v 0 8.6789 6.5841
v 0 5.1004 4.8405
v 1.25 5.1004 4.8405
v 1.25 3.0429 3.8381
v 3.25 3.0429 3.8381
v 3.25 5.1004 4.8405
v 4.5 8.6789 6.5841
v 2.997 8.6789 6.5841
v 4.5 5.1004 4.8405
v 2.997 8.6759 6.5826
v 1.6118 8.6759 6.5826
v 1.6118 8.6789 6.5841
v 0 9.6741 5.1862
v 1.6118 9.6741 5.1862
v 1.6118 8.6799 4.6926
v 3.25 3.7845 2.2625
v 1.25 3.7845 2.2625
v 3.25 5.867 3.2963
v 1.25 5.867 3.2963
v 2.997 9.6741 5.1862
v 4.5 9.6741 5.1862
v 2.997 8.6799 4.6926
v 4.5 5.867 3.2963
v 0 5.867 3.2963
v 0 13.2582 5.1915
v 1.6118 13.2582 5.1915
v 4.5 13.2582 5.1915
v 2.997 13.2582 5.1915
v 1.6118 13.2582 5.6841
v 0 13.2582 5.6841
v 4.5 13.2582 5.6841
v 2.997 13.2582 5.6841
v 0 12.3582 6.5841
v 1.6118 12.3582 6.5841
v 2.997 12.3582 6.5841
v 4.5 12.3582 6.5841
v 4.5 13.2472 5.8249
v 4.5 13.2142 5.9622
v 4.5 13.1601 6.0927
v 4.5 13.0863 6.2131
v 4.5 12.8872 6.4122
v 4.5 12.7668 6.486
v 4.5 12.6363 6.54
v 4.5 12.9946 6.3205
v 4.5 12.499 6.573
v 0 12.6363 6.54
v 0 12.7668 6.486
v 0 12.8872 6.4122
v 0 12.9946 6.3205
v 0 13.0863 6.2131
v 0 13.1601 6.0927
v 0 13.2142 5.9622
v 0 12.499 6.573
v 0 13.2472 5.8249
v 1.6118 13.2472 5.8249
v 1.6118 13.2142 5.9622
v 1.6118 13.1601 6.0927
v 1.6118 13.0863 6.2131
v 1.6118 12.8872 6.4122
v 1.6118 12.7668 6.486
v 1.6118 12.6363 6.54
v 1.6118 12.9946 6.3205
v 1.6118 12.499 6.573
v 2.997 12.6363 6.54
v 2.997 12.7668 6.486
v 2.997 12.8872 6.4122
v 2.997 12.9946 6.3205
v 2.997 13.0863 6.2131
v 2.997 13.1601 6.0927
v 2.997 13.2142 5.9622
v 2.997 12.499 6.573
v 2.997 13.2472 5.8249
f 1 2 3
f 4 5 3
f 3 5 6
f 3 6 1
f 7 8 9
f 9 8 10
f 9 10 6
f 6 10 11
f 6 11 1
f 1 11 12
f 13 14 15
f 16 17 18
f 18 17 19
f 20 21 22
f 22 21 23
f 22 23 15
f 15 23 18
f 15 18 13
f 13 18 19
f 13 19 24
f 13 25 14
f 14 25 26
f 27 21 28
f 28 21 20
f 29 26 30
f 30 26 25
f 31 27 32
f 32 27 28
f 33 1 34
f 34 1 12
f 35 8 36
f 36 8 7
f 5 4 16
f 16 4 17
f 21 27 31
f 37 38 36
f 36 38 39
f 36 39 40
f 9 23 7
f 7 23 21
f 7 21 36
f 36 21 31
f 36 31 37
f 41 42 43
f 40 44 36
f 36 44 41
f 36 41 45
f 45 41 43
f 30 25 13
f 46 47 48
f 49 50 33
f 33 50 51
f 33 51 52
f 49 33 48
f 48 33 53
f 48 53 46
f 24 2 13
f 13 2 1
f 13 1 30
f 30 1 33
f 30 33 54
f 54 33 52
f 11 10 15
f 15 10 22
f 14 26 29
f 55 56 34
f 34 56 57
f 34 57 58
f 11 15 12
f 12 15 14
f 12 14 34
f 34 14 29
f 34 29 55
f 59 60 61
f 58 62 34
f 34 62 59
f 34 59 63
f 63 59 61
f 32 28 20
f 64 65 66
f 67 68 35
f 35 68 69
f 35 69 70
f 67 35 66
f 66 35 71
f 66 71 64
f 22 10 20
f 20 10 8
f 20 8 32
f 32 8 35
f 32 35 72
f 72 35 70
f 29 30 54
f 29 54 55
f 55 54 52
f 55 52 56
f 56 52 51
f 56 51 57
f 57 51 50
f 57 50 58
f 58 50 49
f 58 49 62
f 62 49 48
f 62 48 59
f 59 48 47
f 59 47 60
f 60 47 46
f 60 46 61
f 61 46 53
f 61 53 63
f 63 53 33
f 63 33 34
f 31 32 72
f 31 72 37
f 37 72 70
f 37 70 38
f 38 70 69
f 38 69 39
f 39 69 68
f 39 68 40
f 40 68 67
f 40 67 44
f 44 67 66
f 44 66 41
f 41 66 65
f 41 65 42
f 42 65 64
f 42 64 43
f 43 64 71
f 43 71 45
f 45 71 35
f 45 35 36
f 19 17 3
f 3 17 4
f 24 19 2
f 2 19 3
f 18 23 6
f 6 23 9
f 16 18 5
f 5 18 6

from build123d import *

# Parameters (mm, degrees)
BOSS_EXTRUDE1_DEPTH            = 4.5
CUT_EXTRUDE1_REACH             = 3.412
SKETCH4_W                      = 1.385219638
SKETCH4_H                      = 4.6
CUT_EXTRUDE1_DIRECTION_2_DEPTH = 4.5
FILLET1_R                      = 0.9
CUT_EXTRUDE3_REACH             = 6.201
SKETCH9_W                      = 1.25
SKETCH9_H                      = 2.324916291


with BuildPart() as part:
    # Sketch3 → Boss-Extrude1 (new body)
    with BuildSketch(Plane(origin=(0, 0, 0), x_dir=(0, 0, -1), z_dir=(1, 0, 0))):
        Polygon((-5.191543854, 13.25823412), (-5.18615245, 9.674078564), (-2.262529631, 3.784549229), (-3.838080431, 3.04292615), (-6.584072535, 8.678891581), (-6.584072535, 13.25823412), align=None)
    extrude(amount=BOSS_EXTRUDE1_DEPTH)

    # Sketch4 → Cut-Extrude1 (cut, up to next)
    with BuildSketch(Plane(origin=(0, -0.010796619, 5.165911314), x_dir=(-1, 0, 0), z_dir=(0, 0.002089969, -0.999997816)), mode=Mode.PRIVATE) as cut_extrude1_sk1:
        with Locations((-2.304435674, 10.989683529)):
            Rectangle(SKETCH4_W, SKETCH4_H)
    cut_extrude1_tool1 = extrude(cut_extrude1_sk1.sketch, amount=-CUT_EXTRUDE1_REACH, mode=Mode.PRIVATE) & part.part
    add(cut_extrude1_tool1.solids().sort_by_distance((2.304436, 10.978863, 5.188879))[0], mode=Mode.SUBTRACT)

    # Sketch4 → Cut-Extrude1 direction 2 (cut)
    with BuildSketch(Plane(origin=(0, -0.010796619, 5.165911314), x_dir=(-1, 0, 0), z_dir=(0, 0.002089969, -0.999997816))):
        with Locations((-2.304435674, 10.989683529)):
            Rectangle(SKETCH4_W, SKETCH4_H)
    extrude(amount=CUT_EXTRUDE1_DIRECTION_2_DEPTH, mode=Mode.SUBTRACT)

    # Fillet1
    fillet1_edges = [part.edges().sort_by_distance(p)[0] for p in [
        (3.748522747, 13.25823412, 6.584072535),
        (0.805912927, 13.25823412, 6.584072535),
    ]]
    fillet(fillet1_edges, radius=FILLET1_R)

    # Sketch9 → Cut-Extrude3 (cut, up to next)
    with BuildSketch(Plane(origin=(0, -0.152871347, 0.307953638), x_dir=(-1, 0, 0), z_dir=(0, 0.444639458, -0.895709636)), mode=Mode.PRIVATE) as cut_extrude3_sk1:
        with Locations((-0.625, 5.558325308)):
            Rectangle(SKETCH9_W, SKETCH9_H)
    cut_extrude3_tool1 = extrude(cut_extrude3_sk1.sketch, amount=-CUT_EXTRUDE3_REACH, mode=Mode.PRIVATE) & part.part
    add(cut_extrude3_tool1.solids().sort_by_distance((0.625, 4.825774, 2.779404))[0], mode=Mode.SUBTRACT)
    # Sketch9 → Cut-Extrude3 (cut, up to next)
    with BuildSketch(Plane(origin=(0, -0.152871347, 0.307953638), x_dir=(-1, 0, 0), z_dir=(0, 0.444639458, -0.895709636)), mode=Mode.PRIVATE) as cut_extrude3_sk2:
        with Locations((-3.875, 5.558325308)):
            Rectangle(SKETCH9_W, SKETCH9_H)
    cut_extrude3_tool2 = extrude(cut_extrude3_sk2.sketch, amount=-CUT_EXTRUDE3_REACH, mode=Mode.PRIVATE) & part.part
    add(cut_extrude3_tool2.solids().sort_by_distance((3.875, 4.825774, 2.779404))[0], mode=Mode.SUBTRACT)


solid = part.part
